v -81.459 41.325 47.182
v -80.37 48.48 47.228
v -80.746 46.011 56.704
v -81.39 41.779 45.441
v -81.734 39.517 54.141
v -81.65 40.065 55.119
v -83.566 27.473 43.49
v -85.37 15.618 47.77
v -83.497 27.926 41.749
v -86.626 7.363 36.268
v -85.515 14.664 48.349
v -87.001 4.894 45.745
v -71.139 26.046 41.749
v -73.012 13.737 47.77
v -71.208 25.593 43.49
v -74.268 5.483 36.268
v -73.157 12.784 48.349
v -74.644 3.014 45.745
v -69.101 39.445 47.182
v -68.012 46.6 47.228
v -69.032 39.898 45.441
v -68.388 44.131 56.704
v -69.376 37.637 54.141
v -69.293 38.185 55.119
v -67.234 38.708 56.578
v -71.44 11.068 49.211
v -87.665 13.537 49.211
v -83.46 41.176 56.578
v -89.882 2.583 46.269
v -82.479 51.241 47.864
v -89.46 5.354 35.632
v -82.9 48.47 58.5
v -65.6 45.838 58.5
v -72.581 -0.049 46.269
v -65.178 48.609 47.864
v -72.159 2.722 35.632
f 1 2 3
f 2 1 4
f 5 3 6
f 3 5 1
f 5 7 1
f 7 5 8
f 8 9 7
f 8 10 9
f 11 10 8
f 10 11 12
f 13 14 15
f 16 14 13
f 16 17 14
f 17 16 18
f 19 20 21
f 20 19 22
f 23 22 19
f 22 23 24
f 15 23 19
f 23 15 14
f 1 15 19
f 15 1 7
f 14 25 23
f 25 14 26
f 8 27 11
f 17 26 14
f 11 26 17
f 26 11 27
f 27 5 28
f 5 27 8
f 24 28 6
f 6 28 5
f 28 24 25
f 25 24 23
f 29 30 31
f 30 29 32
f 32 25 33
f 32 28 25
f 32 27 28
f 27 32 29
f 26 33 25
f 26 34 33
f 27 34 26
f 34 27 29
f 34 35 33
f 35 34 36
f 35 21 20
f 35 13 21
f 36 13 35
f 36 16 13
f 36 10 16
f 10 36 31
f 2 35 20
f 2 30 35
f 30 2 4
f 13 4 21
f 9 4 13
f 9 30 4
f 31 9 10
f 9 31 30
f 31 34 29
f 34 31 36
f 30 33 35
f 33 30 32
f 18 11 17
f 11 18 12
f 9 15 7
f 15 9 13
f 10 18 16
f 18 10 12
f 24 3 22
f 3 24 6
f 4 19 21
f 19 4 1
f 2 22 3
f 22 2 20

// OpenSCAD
// Generated by SolidPython 1.1.3 on 2025-12-31 15:29:05


translate(v = [-77.52985690209567, 25.595877133079668, 47.06634805542881]) {
	rotate(a = [14.7627925 , 0.        ,-8.65071739]) {
		difference() {
			cube(center = true, size = [17.5000000000, 48.0000000000, 11.0000000000]);
			translate(v = [0, -10.7500000000, -1.2000000000]) {
				cube(center = true, size = [12.5000000000, 21.5100000000, 11.0000000000]);
			}
			union() {
				translate(v = [0, 2.0000000000, -0.1000000000]) {
					cube(center = true, size = [12.5000000000, 25.0000000000, 7.2000000000]);
				}
				translate(v = [0, 2.0000000000, 5.5500000000]) {
					hull() {
						translate(v = [0, 0, -2.0500000000]) {
							cube(center = true, size = [12.5000000000, 25.0000000000, 0.0100000000]);
						}
						cube(center = true, size = [16.5000000000, 29.0000000000, 0.0100000000]);
					}
				}
			}
			translate(v = [0, 18.0000000000, -1.2000000000]) {
				cube(center = true, size = [12.5000000000, 7.0100000000, 11.0000000000]);
			}
		}
	}
}
/***********************************************
*********      SolidPython code:      **********
************************************************
 
import solid as sl

debug_trace = False

def debugprint(info):
    if debug_trace:
        print(info)

def box(width, height, depth):
    return sl.cube([width, height, depth], center=True)


def cylinder(radius, height, segments=100):
    return sl.cylinder(r=radius, h=height, segments=segments, center=True)


def sphere(radius):
    return sl.sphere(radius)


def cone(r1, r2, height):
    return sl.cylinder(r1=r1, r2=r2, h=height)  # , center=True)


def rotate(shape, angle):
    if shape is None:
        return None
    return sl.rotate(angle)(shape)


def translate(shape, vector):
    if shape is None:
        return None
    return sl.translate(tuple(vector))(shape)


def mirror(shape, plane=None):
    debugprint('mirror()')
    planes = {
        'XY': [0, 0, 1],
        'YX': [0, 0, -1],
        'XZ': [0, 1, 0],
        'ZX': [0, -1, 0],
        'YZ': [1, 0, 0],
        'ZY': [-1, 0, 0],
    }
    return sl.mirror(planes[plane])(shape)


def union(shapes):
    debugprint('union()')
    shape = None
    for item in shapes:
        if item is not None:
            if shape is None:
                shape = item
            else:
                shape += item
    return shape


def add(shapes):
    debugprint('union()')
    shape = None
    for item in shapes:
        if item is not None:
            if shape is None:
                shape = item
            else:
                shape += item
    return shape


def difference(shape, shapes):
    debugprint('difference()')
    for item in shapes:
        if item is not None:
            shape -= item
    return shape


def intersect(shape1, shape2):
    if shape2 is not None:
        return sl.intersection()(shape1, shape2)
    else:
        return shape1

def hull_from_points(points):
    return sl.hull()(*points)


def hull_from_shapes(shapes, points=None):
    hs = []
    if points is not None:
        hs.extend(points)
    if shapes is not None:
        hs.extend(shapes)
    return sl.hull()(*hs)


def tess_hull(shapes, sl_tol=.5, sl_angTol=1):
    return sl.hull()(*shapes)


def triangle_hulls(shapes):
    debugprint('triangle_hulls()')
    hulls = []
    for i in range(len(shapes) - 2):
        hulls.append(hull_from_shapes(shapes[i: (i + 3)]))

    return union(hulls)



def bottom_hull(p, height=0.001):
    debugprint("bottom_hull()")
    shape = None
    for item in p:
        proj = sl.projection()(p)
        t_shape = sl.linear_extrude(height=height, twist=0, convexity=0, center=True)(
            proj
        )
        t_shape = sl.translate([0, 0, height / 2 - 10])(t_shape)
        if shape is None:
            shape = t_shape
        shape = sl.hull()(p, shape, t_shape)
    return shape

def polyline(point_list):
    return sl.polygon(point_list)


# def project_to_plate():
#     square = cq.Workplane('XY').rect(1000, 1000)
#     for wire in square.wires().objects:
#         plane = cq.Workplane('XY').add(cq.Face.makeFromWires(wire))

def extrude_poly(outer_poly, inner_polys=None, height=1):
    if inner_polys is not None:
        return sl.linear_extrude(height=height, twist=0, convexity=0, center=True)(outer_poly, *inner_polys)
    else:
        return sl.linear_extrude(height=height, twist=0, convexity=0, center=True)(outer_poly)


def import_file(fname, convexity=2):
    print("IMPORTING FROM {}".format(fname))
    return sl.import_stl(fname.replace("\\", "/") + ".stl", convexity=convexity)


def export_file(shape, fname):
    print("EXPORTING TO {}".format(fname))
    sl.scad_render_to_file(shape, fname + ".scad")


def export_dxf(shape, fname):
    print("NO DXF EXPORT FOR SOLID".format(fname))
    pass 
 
************************************************/
